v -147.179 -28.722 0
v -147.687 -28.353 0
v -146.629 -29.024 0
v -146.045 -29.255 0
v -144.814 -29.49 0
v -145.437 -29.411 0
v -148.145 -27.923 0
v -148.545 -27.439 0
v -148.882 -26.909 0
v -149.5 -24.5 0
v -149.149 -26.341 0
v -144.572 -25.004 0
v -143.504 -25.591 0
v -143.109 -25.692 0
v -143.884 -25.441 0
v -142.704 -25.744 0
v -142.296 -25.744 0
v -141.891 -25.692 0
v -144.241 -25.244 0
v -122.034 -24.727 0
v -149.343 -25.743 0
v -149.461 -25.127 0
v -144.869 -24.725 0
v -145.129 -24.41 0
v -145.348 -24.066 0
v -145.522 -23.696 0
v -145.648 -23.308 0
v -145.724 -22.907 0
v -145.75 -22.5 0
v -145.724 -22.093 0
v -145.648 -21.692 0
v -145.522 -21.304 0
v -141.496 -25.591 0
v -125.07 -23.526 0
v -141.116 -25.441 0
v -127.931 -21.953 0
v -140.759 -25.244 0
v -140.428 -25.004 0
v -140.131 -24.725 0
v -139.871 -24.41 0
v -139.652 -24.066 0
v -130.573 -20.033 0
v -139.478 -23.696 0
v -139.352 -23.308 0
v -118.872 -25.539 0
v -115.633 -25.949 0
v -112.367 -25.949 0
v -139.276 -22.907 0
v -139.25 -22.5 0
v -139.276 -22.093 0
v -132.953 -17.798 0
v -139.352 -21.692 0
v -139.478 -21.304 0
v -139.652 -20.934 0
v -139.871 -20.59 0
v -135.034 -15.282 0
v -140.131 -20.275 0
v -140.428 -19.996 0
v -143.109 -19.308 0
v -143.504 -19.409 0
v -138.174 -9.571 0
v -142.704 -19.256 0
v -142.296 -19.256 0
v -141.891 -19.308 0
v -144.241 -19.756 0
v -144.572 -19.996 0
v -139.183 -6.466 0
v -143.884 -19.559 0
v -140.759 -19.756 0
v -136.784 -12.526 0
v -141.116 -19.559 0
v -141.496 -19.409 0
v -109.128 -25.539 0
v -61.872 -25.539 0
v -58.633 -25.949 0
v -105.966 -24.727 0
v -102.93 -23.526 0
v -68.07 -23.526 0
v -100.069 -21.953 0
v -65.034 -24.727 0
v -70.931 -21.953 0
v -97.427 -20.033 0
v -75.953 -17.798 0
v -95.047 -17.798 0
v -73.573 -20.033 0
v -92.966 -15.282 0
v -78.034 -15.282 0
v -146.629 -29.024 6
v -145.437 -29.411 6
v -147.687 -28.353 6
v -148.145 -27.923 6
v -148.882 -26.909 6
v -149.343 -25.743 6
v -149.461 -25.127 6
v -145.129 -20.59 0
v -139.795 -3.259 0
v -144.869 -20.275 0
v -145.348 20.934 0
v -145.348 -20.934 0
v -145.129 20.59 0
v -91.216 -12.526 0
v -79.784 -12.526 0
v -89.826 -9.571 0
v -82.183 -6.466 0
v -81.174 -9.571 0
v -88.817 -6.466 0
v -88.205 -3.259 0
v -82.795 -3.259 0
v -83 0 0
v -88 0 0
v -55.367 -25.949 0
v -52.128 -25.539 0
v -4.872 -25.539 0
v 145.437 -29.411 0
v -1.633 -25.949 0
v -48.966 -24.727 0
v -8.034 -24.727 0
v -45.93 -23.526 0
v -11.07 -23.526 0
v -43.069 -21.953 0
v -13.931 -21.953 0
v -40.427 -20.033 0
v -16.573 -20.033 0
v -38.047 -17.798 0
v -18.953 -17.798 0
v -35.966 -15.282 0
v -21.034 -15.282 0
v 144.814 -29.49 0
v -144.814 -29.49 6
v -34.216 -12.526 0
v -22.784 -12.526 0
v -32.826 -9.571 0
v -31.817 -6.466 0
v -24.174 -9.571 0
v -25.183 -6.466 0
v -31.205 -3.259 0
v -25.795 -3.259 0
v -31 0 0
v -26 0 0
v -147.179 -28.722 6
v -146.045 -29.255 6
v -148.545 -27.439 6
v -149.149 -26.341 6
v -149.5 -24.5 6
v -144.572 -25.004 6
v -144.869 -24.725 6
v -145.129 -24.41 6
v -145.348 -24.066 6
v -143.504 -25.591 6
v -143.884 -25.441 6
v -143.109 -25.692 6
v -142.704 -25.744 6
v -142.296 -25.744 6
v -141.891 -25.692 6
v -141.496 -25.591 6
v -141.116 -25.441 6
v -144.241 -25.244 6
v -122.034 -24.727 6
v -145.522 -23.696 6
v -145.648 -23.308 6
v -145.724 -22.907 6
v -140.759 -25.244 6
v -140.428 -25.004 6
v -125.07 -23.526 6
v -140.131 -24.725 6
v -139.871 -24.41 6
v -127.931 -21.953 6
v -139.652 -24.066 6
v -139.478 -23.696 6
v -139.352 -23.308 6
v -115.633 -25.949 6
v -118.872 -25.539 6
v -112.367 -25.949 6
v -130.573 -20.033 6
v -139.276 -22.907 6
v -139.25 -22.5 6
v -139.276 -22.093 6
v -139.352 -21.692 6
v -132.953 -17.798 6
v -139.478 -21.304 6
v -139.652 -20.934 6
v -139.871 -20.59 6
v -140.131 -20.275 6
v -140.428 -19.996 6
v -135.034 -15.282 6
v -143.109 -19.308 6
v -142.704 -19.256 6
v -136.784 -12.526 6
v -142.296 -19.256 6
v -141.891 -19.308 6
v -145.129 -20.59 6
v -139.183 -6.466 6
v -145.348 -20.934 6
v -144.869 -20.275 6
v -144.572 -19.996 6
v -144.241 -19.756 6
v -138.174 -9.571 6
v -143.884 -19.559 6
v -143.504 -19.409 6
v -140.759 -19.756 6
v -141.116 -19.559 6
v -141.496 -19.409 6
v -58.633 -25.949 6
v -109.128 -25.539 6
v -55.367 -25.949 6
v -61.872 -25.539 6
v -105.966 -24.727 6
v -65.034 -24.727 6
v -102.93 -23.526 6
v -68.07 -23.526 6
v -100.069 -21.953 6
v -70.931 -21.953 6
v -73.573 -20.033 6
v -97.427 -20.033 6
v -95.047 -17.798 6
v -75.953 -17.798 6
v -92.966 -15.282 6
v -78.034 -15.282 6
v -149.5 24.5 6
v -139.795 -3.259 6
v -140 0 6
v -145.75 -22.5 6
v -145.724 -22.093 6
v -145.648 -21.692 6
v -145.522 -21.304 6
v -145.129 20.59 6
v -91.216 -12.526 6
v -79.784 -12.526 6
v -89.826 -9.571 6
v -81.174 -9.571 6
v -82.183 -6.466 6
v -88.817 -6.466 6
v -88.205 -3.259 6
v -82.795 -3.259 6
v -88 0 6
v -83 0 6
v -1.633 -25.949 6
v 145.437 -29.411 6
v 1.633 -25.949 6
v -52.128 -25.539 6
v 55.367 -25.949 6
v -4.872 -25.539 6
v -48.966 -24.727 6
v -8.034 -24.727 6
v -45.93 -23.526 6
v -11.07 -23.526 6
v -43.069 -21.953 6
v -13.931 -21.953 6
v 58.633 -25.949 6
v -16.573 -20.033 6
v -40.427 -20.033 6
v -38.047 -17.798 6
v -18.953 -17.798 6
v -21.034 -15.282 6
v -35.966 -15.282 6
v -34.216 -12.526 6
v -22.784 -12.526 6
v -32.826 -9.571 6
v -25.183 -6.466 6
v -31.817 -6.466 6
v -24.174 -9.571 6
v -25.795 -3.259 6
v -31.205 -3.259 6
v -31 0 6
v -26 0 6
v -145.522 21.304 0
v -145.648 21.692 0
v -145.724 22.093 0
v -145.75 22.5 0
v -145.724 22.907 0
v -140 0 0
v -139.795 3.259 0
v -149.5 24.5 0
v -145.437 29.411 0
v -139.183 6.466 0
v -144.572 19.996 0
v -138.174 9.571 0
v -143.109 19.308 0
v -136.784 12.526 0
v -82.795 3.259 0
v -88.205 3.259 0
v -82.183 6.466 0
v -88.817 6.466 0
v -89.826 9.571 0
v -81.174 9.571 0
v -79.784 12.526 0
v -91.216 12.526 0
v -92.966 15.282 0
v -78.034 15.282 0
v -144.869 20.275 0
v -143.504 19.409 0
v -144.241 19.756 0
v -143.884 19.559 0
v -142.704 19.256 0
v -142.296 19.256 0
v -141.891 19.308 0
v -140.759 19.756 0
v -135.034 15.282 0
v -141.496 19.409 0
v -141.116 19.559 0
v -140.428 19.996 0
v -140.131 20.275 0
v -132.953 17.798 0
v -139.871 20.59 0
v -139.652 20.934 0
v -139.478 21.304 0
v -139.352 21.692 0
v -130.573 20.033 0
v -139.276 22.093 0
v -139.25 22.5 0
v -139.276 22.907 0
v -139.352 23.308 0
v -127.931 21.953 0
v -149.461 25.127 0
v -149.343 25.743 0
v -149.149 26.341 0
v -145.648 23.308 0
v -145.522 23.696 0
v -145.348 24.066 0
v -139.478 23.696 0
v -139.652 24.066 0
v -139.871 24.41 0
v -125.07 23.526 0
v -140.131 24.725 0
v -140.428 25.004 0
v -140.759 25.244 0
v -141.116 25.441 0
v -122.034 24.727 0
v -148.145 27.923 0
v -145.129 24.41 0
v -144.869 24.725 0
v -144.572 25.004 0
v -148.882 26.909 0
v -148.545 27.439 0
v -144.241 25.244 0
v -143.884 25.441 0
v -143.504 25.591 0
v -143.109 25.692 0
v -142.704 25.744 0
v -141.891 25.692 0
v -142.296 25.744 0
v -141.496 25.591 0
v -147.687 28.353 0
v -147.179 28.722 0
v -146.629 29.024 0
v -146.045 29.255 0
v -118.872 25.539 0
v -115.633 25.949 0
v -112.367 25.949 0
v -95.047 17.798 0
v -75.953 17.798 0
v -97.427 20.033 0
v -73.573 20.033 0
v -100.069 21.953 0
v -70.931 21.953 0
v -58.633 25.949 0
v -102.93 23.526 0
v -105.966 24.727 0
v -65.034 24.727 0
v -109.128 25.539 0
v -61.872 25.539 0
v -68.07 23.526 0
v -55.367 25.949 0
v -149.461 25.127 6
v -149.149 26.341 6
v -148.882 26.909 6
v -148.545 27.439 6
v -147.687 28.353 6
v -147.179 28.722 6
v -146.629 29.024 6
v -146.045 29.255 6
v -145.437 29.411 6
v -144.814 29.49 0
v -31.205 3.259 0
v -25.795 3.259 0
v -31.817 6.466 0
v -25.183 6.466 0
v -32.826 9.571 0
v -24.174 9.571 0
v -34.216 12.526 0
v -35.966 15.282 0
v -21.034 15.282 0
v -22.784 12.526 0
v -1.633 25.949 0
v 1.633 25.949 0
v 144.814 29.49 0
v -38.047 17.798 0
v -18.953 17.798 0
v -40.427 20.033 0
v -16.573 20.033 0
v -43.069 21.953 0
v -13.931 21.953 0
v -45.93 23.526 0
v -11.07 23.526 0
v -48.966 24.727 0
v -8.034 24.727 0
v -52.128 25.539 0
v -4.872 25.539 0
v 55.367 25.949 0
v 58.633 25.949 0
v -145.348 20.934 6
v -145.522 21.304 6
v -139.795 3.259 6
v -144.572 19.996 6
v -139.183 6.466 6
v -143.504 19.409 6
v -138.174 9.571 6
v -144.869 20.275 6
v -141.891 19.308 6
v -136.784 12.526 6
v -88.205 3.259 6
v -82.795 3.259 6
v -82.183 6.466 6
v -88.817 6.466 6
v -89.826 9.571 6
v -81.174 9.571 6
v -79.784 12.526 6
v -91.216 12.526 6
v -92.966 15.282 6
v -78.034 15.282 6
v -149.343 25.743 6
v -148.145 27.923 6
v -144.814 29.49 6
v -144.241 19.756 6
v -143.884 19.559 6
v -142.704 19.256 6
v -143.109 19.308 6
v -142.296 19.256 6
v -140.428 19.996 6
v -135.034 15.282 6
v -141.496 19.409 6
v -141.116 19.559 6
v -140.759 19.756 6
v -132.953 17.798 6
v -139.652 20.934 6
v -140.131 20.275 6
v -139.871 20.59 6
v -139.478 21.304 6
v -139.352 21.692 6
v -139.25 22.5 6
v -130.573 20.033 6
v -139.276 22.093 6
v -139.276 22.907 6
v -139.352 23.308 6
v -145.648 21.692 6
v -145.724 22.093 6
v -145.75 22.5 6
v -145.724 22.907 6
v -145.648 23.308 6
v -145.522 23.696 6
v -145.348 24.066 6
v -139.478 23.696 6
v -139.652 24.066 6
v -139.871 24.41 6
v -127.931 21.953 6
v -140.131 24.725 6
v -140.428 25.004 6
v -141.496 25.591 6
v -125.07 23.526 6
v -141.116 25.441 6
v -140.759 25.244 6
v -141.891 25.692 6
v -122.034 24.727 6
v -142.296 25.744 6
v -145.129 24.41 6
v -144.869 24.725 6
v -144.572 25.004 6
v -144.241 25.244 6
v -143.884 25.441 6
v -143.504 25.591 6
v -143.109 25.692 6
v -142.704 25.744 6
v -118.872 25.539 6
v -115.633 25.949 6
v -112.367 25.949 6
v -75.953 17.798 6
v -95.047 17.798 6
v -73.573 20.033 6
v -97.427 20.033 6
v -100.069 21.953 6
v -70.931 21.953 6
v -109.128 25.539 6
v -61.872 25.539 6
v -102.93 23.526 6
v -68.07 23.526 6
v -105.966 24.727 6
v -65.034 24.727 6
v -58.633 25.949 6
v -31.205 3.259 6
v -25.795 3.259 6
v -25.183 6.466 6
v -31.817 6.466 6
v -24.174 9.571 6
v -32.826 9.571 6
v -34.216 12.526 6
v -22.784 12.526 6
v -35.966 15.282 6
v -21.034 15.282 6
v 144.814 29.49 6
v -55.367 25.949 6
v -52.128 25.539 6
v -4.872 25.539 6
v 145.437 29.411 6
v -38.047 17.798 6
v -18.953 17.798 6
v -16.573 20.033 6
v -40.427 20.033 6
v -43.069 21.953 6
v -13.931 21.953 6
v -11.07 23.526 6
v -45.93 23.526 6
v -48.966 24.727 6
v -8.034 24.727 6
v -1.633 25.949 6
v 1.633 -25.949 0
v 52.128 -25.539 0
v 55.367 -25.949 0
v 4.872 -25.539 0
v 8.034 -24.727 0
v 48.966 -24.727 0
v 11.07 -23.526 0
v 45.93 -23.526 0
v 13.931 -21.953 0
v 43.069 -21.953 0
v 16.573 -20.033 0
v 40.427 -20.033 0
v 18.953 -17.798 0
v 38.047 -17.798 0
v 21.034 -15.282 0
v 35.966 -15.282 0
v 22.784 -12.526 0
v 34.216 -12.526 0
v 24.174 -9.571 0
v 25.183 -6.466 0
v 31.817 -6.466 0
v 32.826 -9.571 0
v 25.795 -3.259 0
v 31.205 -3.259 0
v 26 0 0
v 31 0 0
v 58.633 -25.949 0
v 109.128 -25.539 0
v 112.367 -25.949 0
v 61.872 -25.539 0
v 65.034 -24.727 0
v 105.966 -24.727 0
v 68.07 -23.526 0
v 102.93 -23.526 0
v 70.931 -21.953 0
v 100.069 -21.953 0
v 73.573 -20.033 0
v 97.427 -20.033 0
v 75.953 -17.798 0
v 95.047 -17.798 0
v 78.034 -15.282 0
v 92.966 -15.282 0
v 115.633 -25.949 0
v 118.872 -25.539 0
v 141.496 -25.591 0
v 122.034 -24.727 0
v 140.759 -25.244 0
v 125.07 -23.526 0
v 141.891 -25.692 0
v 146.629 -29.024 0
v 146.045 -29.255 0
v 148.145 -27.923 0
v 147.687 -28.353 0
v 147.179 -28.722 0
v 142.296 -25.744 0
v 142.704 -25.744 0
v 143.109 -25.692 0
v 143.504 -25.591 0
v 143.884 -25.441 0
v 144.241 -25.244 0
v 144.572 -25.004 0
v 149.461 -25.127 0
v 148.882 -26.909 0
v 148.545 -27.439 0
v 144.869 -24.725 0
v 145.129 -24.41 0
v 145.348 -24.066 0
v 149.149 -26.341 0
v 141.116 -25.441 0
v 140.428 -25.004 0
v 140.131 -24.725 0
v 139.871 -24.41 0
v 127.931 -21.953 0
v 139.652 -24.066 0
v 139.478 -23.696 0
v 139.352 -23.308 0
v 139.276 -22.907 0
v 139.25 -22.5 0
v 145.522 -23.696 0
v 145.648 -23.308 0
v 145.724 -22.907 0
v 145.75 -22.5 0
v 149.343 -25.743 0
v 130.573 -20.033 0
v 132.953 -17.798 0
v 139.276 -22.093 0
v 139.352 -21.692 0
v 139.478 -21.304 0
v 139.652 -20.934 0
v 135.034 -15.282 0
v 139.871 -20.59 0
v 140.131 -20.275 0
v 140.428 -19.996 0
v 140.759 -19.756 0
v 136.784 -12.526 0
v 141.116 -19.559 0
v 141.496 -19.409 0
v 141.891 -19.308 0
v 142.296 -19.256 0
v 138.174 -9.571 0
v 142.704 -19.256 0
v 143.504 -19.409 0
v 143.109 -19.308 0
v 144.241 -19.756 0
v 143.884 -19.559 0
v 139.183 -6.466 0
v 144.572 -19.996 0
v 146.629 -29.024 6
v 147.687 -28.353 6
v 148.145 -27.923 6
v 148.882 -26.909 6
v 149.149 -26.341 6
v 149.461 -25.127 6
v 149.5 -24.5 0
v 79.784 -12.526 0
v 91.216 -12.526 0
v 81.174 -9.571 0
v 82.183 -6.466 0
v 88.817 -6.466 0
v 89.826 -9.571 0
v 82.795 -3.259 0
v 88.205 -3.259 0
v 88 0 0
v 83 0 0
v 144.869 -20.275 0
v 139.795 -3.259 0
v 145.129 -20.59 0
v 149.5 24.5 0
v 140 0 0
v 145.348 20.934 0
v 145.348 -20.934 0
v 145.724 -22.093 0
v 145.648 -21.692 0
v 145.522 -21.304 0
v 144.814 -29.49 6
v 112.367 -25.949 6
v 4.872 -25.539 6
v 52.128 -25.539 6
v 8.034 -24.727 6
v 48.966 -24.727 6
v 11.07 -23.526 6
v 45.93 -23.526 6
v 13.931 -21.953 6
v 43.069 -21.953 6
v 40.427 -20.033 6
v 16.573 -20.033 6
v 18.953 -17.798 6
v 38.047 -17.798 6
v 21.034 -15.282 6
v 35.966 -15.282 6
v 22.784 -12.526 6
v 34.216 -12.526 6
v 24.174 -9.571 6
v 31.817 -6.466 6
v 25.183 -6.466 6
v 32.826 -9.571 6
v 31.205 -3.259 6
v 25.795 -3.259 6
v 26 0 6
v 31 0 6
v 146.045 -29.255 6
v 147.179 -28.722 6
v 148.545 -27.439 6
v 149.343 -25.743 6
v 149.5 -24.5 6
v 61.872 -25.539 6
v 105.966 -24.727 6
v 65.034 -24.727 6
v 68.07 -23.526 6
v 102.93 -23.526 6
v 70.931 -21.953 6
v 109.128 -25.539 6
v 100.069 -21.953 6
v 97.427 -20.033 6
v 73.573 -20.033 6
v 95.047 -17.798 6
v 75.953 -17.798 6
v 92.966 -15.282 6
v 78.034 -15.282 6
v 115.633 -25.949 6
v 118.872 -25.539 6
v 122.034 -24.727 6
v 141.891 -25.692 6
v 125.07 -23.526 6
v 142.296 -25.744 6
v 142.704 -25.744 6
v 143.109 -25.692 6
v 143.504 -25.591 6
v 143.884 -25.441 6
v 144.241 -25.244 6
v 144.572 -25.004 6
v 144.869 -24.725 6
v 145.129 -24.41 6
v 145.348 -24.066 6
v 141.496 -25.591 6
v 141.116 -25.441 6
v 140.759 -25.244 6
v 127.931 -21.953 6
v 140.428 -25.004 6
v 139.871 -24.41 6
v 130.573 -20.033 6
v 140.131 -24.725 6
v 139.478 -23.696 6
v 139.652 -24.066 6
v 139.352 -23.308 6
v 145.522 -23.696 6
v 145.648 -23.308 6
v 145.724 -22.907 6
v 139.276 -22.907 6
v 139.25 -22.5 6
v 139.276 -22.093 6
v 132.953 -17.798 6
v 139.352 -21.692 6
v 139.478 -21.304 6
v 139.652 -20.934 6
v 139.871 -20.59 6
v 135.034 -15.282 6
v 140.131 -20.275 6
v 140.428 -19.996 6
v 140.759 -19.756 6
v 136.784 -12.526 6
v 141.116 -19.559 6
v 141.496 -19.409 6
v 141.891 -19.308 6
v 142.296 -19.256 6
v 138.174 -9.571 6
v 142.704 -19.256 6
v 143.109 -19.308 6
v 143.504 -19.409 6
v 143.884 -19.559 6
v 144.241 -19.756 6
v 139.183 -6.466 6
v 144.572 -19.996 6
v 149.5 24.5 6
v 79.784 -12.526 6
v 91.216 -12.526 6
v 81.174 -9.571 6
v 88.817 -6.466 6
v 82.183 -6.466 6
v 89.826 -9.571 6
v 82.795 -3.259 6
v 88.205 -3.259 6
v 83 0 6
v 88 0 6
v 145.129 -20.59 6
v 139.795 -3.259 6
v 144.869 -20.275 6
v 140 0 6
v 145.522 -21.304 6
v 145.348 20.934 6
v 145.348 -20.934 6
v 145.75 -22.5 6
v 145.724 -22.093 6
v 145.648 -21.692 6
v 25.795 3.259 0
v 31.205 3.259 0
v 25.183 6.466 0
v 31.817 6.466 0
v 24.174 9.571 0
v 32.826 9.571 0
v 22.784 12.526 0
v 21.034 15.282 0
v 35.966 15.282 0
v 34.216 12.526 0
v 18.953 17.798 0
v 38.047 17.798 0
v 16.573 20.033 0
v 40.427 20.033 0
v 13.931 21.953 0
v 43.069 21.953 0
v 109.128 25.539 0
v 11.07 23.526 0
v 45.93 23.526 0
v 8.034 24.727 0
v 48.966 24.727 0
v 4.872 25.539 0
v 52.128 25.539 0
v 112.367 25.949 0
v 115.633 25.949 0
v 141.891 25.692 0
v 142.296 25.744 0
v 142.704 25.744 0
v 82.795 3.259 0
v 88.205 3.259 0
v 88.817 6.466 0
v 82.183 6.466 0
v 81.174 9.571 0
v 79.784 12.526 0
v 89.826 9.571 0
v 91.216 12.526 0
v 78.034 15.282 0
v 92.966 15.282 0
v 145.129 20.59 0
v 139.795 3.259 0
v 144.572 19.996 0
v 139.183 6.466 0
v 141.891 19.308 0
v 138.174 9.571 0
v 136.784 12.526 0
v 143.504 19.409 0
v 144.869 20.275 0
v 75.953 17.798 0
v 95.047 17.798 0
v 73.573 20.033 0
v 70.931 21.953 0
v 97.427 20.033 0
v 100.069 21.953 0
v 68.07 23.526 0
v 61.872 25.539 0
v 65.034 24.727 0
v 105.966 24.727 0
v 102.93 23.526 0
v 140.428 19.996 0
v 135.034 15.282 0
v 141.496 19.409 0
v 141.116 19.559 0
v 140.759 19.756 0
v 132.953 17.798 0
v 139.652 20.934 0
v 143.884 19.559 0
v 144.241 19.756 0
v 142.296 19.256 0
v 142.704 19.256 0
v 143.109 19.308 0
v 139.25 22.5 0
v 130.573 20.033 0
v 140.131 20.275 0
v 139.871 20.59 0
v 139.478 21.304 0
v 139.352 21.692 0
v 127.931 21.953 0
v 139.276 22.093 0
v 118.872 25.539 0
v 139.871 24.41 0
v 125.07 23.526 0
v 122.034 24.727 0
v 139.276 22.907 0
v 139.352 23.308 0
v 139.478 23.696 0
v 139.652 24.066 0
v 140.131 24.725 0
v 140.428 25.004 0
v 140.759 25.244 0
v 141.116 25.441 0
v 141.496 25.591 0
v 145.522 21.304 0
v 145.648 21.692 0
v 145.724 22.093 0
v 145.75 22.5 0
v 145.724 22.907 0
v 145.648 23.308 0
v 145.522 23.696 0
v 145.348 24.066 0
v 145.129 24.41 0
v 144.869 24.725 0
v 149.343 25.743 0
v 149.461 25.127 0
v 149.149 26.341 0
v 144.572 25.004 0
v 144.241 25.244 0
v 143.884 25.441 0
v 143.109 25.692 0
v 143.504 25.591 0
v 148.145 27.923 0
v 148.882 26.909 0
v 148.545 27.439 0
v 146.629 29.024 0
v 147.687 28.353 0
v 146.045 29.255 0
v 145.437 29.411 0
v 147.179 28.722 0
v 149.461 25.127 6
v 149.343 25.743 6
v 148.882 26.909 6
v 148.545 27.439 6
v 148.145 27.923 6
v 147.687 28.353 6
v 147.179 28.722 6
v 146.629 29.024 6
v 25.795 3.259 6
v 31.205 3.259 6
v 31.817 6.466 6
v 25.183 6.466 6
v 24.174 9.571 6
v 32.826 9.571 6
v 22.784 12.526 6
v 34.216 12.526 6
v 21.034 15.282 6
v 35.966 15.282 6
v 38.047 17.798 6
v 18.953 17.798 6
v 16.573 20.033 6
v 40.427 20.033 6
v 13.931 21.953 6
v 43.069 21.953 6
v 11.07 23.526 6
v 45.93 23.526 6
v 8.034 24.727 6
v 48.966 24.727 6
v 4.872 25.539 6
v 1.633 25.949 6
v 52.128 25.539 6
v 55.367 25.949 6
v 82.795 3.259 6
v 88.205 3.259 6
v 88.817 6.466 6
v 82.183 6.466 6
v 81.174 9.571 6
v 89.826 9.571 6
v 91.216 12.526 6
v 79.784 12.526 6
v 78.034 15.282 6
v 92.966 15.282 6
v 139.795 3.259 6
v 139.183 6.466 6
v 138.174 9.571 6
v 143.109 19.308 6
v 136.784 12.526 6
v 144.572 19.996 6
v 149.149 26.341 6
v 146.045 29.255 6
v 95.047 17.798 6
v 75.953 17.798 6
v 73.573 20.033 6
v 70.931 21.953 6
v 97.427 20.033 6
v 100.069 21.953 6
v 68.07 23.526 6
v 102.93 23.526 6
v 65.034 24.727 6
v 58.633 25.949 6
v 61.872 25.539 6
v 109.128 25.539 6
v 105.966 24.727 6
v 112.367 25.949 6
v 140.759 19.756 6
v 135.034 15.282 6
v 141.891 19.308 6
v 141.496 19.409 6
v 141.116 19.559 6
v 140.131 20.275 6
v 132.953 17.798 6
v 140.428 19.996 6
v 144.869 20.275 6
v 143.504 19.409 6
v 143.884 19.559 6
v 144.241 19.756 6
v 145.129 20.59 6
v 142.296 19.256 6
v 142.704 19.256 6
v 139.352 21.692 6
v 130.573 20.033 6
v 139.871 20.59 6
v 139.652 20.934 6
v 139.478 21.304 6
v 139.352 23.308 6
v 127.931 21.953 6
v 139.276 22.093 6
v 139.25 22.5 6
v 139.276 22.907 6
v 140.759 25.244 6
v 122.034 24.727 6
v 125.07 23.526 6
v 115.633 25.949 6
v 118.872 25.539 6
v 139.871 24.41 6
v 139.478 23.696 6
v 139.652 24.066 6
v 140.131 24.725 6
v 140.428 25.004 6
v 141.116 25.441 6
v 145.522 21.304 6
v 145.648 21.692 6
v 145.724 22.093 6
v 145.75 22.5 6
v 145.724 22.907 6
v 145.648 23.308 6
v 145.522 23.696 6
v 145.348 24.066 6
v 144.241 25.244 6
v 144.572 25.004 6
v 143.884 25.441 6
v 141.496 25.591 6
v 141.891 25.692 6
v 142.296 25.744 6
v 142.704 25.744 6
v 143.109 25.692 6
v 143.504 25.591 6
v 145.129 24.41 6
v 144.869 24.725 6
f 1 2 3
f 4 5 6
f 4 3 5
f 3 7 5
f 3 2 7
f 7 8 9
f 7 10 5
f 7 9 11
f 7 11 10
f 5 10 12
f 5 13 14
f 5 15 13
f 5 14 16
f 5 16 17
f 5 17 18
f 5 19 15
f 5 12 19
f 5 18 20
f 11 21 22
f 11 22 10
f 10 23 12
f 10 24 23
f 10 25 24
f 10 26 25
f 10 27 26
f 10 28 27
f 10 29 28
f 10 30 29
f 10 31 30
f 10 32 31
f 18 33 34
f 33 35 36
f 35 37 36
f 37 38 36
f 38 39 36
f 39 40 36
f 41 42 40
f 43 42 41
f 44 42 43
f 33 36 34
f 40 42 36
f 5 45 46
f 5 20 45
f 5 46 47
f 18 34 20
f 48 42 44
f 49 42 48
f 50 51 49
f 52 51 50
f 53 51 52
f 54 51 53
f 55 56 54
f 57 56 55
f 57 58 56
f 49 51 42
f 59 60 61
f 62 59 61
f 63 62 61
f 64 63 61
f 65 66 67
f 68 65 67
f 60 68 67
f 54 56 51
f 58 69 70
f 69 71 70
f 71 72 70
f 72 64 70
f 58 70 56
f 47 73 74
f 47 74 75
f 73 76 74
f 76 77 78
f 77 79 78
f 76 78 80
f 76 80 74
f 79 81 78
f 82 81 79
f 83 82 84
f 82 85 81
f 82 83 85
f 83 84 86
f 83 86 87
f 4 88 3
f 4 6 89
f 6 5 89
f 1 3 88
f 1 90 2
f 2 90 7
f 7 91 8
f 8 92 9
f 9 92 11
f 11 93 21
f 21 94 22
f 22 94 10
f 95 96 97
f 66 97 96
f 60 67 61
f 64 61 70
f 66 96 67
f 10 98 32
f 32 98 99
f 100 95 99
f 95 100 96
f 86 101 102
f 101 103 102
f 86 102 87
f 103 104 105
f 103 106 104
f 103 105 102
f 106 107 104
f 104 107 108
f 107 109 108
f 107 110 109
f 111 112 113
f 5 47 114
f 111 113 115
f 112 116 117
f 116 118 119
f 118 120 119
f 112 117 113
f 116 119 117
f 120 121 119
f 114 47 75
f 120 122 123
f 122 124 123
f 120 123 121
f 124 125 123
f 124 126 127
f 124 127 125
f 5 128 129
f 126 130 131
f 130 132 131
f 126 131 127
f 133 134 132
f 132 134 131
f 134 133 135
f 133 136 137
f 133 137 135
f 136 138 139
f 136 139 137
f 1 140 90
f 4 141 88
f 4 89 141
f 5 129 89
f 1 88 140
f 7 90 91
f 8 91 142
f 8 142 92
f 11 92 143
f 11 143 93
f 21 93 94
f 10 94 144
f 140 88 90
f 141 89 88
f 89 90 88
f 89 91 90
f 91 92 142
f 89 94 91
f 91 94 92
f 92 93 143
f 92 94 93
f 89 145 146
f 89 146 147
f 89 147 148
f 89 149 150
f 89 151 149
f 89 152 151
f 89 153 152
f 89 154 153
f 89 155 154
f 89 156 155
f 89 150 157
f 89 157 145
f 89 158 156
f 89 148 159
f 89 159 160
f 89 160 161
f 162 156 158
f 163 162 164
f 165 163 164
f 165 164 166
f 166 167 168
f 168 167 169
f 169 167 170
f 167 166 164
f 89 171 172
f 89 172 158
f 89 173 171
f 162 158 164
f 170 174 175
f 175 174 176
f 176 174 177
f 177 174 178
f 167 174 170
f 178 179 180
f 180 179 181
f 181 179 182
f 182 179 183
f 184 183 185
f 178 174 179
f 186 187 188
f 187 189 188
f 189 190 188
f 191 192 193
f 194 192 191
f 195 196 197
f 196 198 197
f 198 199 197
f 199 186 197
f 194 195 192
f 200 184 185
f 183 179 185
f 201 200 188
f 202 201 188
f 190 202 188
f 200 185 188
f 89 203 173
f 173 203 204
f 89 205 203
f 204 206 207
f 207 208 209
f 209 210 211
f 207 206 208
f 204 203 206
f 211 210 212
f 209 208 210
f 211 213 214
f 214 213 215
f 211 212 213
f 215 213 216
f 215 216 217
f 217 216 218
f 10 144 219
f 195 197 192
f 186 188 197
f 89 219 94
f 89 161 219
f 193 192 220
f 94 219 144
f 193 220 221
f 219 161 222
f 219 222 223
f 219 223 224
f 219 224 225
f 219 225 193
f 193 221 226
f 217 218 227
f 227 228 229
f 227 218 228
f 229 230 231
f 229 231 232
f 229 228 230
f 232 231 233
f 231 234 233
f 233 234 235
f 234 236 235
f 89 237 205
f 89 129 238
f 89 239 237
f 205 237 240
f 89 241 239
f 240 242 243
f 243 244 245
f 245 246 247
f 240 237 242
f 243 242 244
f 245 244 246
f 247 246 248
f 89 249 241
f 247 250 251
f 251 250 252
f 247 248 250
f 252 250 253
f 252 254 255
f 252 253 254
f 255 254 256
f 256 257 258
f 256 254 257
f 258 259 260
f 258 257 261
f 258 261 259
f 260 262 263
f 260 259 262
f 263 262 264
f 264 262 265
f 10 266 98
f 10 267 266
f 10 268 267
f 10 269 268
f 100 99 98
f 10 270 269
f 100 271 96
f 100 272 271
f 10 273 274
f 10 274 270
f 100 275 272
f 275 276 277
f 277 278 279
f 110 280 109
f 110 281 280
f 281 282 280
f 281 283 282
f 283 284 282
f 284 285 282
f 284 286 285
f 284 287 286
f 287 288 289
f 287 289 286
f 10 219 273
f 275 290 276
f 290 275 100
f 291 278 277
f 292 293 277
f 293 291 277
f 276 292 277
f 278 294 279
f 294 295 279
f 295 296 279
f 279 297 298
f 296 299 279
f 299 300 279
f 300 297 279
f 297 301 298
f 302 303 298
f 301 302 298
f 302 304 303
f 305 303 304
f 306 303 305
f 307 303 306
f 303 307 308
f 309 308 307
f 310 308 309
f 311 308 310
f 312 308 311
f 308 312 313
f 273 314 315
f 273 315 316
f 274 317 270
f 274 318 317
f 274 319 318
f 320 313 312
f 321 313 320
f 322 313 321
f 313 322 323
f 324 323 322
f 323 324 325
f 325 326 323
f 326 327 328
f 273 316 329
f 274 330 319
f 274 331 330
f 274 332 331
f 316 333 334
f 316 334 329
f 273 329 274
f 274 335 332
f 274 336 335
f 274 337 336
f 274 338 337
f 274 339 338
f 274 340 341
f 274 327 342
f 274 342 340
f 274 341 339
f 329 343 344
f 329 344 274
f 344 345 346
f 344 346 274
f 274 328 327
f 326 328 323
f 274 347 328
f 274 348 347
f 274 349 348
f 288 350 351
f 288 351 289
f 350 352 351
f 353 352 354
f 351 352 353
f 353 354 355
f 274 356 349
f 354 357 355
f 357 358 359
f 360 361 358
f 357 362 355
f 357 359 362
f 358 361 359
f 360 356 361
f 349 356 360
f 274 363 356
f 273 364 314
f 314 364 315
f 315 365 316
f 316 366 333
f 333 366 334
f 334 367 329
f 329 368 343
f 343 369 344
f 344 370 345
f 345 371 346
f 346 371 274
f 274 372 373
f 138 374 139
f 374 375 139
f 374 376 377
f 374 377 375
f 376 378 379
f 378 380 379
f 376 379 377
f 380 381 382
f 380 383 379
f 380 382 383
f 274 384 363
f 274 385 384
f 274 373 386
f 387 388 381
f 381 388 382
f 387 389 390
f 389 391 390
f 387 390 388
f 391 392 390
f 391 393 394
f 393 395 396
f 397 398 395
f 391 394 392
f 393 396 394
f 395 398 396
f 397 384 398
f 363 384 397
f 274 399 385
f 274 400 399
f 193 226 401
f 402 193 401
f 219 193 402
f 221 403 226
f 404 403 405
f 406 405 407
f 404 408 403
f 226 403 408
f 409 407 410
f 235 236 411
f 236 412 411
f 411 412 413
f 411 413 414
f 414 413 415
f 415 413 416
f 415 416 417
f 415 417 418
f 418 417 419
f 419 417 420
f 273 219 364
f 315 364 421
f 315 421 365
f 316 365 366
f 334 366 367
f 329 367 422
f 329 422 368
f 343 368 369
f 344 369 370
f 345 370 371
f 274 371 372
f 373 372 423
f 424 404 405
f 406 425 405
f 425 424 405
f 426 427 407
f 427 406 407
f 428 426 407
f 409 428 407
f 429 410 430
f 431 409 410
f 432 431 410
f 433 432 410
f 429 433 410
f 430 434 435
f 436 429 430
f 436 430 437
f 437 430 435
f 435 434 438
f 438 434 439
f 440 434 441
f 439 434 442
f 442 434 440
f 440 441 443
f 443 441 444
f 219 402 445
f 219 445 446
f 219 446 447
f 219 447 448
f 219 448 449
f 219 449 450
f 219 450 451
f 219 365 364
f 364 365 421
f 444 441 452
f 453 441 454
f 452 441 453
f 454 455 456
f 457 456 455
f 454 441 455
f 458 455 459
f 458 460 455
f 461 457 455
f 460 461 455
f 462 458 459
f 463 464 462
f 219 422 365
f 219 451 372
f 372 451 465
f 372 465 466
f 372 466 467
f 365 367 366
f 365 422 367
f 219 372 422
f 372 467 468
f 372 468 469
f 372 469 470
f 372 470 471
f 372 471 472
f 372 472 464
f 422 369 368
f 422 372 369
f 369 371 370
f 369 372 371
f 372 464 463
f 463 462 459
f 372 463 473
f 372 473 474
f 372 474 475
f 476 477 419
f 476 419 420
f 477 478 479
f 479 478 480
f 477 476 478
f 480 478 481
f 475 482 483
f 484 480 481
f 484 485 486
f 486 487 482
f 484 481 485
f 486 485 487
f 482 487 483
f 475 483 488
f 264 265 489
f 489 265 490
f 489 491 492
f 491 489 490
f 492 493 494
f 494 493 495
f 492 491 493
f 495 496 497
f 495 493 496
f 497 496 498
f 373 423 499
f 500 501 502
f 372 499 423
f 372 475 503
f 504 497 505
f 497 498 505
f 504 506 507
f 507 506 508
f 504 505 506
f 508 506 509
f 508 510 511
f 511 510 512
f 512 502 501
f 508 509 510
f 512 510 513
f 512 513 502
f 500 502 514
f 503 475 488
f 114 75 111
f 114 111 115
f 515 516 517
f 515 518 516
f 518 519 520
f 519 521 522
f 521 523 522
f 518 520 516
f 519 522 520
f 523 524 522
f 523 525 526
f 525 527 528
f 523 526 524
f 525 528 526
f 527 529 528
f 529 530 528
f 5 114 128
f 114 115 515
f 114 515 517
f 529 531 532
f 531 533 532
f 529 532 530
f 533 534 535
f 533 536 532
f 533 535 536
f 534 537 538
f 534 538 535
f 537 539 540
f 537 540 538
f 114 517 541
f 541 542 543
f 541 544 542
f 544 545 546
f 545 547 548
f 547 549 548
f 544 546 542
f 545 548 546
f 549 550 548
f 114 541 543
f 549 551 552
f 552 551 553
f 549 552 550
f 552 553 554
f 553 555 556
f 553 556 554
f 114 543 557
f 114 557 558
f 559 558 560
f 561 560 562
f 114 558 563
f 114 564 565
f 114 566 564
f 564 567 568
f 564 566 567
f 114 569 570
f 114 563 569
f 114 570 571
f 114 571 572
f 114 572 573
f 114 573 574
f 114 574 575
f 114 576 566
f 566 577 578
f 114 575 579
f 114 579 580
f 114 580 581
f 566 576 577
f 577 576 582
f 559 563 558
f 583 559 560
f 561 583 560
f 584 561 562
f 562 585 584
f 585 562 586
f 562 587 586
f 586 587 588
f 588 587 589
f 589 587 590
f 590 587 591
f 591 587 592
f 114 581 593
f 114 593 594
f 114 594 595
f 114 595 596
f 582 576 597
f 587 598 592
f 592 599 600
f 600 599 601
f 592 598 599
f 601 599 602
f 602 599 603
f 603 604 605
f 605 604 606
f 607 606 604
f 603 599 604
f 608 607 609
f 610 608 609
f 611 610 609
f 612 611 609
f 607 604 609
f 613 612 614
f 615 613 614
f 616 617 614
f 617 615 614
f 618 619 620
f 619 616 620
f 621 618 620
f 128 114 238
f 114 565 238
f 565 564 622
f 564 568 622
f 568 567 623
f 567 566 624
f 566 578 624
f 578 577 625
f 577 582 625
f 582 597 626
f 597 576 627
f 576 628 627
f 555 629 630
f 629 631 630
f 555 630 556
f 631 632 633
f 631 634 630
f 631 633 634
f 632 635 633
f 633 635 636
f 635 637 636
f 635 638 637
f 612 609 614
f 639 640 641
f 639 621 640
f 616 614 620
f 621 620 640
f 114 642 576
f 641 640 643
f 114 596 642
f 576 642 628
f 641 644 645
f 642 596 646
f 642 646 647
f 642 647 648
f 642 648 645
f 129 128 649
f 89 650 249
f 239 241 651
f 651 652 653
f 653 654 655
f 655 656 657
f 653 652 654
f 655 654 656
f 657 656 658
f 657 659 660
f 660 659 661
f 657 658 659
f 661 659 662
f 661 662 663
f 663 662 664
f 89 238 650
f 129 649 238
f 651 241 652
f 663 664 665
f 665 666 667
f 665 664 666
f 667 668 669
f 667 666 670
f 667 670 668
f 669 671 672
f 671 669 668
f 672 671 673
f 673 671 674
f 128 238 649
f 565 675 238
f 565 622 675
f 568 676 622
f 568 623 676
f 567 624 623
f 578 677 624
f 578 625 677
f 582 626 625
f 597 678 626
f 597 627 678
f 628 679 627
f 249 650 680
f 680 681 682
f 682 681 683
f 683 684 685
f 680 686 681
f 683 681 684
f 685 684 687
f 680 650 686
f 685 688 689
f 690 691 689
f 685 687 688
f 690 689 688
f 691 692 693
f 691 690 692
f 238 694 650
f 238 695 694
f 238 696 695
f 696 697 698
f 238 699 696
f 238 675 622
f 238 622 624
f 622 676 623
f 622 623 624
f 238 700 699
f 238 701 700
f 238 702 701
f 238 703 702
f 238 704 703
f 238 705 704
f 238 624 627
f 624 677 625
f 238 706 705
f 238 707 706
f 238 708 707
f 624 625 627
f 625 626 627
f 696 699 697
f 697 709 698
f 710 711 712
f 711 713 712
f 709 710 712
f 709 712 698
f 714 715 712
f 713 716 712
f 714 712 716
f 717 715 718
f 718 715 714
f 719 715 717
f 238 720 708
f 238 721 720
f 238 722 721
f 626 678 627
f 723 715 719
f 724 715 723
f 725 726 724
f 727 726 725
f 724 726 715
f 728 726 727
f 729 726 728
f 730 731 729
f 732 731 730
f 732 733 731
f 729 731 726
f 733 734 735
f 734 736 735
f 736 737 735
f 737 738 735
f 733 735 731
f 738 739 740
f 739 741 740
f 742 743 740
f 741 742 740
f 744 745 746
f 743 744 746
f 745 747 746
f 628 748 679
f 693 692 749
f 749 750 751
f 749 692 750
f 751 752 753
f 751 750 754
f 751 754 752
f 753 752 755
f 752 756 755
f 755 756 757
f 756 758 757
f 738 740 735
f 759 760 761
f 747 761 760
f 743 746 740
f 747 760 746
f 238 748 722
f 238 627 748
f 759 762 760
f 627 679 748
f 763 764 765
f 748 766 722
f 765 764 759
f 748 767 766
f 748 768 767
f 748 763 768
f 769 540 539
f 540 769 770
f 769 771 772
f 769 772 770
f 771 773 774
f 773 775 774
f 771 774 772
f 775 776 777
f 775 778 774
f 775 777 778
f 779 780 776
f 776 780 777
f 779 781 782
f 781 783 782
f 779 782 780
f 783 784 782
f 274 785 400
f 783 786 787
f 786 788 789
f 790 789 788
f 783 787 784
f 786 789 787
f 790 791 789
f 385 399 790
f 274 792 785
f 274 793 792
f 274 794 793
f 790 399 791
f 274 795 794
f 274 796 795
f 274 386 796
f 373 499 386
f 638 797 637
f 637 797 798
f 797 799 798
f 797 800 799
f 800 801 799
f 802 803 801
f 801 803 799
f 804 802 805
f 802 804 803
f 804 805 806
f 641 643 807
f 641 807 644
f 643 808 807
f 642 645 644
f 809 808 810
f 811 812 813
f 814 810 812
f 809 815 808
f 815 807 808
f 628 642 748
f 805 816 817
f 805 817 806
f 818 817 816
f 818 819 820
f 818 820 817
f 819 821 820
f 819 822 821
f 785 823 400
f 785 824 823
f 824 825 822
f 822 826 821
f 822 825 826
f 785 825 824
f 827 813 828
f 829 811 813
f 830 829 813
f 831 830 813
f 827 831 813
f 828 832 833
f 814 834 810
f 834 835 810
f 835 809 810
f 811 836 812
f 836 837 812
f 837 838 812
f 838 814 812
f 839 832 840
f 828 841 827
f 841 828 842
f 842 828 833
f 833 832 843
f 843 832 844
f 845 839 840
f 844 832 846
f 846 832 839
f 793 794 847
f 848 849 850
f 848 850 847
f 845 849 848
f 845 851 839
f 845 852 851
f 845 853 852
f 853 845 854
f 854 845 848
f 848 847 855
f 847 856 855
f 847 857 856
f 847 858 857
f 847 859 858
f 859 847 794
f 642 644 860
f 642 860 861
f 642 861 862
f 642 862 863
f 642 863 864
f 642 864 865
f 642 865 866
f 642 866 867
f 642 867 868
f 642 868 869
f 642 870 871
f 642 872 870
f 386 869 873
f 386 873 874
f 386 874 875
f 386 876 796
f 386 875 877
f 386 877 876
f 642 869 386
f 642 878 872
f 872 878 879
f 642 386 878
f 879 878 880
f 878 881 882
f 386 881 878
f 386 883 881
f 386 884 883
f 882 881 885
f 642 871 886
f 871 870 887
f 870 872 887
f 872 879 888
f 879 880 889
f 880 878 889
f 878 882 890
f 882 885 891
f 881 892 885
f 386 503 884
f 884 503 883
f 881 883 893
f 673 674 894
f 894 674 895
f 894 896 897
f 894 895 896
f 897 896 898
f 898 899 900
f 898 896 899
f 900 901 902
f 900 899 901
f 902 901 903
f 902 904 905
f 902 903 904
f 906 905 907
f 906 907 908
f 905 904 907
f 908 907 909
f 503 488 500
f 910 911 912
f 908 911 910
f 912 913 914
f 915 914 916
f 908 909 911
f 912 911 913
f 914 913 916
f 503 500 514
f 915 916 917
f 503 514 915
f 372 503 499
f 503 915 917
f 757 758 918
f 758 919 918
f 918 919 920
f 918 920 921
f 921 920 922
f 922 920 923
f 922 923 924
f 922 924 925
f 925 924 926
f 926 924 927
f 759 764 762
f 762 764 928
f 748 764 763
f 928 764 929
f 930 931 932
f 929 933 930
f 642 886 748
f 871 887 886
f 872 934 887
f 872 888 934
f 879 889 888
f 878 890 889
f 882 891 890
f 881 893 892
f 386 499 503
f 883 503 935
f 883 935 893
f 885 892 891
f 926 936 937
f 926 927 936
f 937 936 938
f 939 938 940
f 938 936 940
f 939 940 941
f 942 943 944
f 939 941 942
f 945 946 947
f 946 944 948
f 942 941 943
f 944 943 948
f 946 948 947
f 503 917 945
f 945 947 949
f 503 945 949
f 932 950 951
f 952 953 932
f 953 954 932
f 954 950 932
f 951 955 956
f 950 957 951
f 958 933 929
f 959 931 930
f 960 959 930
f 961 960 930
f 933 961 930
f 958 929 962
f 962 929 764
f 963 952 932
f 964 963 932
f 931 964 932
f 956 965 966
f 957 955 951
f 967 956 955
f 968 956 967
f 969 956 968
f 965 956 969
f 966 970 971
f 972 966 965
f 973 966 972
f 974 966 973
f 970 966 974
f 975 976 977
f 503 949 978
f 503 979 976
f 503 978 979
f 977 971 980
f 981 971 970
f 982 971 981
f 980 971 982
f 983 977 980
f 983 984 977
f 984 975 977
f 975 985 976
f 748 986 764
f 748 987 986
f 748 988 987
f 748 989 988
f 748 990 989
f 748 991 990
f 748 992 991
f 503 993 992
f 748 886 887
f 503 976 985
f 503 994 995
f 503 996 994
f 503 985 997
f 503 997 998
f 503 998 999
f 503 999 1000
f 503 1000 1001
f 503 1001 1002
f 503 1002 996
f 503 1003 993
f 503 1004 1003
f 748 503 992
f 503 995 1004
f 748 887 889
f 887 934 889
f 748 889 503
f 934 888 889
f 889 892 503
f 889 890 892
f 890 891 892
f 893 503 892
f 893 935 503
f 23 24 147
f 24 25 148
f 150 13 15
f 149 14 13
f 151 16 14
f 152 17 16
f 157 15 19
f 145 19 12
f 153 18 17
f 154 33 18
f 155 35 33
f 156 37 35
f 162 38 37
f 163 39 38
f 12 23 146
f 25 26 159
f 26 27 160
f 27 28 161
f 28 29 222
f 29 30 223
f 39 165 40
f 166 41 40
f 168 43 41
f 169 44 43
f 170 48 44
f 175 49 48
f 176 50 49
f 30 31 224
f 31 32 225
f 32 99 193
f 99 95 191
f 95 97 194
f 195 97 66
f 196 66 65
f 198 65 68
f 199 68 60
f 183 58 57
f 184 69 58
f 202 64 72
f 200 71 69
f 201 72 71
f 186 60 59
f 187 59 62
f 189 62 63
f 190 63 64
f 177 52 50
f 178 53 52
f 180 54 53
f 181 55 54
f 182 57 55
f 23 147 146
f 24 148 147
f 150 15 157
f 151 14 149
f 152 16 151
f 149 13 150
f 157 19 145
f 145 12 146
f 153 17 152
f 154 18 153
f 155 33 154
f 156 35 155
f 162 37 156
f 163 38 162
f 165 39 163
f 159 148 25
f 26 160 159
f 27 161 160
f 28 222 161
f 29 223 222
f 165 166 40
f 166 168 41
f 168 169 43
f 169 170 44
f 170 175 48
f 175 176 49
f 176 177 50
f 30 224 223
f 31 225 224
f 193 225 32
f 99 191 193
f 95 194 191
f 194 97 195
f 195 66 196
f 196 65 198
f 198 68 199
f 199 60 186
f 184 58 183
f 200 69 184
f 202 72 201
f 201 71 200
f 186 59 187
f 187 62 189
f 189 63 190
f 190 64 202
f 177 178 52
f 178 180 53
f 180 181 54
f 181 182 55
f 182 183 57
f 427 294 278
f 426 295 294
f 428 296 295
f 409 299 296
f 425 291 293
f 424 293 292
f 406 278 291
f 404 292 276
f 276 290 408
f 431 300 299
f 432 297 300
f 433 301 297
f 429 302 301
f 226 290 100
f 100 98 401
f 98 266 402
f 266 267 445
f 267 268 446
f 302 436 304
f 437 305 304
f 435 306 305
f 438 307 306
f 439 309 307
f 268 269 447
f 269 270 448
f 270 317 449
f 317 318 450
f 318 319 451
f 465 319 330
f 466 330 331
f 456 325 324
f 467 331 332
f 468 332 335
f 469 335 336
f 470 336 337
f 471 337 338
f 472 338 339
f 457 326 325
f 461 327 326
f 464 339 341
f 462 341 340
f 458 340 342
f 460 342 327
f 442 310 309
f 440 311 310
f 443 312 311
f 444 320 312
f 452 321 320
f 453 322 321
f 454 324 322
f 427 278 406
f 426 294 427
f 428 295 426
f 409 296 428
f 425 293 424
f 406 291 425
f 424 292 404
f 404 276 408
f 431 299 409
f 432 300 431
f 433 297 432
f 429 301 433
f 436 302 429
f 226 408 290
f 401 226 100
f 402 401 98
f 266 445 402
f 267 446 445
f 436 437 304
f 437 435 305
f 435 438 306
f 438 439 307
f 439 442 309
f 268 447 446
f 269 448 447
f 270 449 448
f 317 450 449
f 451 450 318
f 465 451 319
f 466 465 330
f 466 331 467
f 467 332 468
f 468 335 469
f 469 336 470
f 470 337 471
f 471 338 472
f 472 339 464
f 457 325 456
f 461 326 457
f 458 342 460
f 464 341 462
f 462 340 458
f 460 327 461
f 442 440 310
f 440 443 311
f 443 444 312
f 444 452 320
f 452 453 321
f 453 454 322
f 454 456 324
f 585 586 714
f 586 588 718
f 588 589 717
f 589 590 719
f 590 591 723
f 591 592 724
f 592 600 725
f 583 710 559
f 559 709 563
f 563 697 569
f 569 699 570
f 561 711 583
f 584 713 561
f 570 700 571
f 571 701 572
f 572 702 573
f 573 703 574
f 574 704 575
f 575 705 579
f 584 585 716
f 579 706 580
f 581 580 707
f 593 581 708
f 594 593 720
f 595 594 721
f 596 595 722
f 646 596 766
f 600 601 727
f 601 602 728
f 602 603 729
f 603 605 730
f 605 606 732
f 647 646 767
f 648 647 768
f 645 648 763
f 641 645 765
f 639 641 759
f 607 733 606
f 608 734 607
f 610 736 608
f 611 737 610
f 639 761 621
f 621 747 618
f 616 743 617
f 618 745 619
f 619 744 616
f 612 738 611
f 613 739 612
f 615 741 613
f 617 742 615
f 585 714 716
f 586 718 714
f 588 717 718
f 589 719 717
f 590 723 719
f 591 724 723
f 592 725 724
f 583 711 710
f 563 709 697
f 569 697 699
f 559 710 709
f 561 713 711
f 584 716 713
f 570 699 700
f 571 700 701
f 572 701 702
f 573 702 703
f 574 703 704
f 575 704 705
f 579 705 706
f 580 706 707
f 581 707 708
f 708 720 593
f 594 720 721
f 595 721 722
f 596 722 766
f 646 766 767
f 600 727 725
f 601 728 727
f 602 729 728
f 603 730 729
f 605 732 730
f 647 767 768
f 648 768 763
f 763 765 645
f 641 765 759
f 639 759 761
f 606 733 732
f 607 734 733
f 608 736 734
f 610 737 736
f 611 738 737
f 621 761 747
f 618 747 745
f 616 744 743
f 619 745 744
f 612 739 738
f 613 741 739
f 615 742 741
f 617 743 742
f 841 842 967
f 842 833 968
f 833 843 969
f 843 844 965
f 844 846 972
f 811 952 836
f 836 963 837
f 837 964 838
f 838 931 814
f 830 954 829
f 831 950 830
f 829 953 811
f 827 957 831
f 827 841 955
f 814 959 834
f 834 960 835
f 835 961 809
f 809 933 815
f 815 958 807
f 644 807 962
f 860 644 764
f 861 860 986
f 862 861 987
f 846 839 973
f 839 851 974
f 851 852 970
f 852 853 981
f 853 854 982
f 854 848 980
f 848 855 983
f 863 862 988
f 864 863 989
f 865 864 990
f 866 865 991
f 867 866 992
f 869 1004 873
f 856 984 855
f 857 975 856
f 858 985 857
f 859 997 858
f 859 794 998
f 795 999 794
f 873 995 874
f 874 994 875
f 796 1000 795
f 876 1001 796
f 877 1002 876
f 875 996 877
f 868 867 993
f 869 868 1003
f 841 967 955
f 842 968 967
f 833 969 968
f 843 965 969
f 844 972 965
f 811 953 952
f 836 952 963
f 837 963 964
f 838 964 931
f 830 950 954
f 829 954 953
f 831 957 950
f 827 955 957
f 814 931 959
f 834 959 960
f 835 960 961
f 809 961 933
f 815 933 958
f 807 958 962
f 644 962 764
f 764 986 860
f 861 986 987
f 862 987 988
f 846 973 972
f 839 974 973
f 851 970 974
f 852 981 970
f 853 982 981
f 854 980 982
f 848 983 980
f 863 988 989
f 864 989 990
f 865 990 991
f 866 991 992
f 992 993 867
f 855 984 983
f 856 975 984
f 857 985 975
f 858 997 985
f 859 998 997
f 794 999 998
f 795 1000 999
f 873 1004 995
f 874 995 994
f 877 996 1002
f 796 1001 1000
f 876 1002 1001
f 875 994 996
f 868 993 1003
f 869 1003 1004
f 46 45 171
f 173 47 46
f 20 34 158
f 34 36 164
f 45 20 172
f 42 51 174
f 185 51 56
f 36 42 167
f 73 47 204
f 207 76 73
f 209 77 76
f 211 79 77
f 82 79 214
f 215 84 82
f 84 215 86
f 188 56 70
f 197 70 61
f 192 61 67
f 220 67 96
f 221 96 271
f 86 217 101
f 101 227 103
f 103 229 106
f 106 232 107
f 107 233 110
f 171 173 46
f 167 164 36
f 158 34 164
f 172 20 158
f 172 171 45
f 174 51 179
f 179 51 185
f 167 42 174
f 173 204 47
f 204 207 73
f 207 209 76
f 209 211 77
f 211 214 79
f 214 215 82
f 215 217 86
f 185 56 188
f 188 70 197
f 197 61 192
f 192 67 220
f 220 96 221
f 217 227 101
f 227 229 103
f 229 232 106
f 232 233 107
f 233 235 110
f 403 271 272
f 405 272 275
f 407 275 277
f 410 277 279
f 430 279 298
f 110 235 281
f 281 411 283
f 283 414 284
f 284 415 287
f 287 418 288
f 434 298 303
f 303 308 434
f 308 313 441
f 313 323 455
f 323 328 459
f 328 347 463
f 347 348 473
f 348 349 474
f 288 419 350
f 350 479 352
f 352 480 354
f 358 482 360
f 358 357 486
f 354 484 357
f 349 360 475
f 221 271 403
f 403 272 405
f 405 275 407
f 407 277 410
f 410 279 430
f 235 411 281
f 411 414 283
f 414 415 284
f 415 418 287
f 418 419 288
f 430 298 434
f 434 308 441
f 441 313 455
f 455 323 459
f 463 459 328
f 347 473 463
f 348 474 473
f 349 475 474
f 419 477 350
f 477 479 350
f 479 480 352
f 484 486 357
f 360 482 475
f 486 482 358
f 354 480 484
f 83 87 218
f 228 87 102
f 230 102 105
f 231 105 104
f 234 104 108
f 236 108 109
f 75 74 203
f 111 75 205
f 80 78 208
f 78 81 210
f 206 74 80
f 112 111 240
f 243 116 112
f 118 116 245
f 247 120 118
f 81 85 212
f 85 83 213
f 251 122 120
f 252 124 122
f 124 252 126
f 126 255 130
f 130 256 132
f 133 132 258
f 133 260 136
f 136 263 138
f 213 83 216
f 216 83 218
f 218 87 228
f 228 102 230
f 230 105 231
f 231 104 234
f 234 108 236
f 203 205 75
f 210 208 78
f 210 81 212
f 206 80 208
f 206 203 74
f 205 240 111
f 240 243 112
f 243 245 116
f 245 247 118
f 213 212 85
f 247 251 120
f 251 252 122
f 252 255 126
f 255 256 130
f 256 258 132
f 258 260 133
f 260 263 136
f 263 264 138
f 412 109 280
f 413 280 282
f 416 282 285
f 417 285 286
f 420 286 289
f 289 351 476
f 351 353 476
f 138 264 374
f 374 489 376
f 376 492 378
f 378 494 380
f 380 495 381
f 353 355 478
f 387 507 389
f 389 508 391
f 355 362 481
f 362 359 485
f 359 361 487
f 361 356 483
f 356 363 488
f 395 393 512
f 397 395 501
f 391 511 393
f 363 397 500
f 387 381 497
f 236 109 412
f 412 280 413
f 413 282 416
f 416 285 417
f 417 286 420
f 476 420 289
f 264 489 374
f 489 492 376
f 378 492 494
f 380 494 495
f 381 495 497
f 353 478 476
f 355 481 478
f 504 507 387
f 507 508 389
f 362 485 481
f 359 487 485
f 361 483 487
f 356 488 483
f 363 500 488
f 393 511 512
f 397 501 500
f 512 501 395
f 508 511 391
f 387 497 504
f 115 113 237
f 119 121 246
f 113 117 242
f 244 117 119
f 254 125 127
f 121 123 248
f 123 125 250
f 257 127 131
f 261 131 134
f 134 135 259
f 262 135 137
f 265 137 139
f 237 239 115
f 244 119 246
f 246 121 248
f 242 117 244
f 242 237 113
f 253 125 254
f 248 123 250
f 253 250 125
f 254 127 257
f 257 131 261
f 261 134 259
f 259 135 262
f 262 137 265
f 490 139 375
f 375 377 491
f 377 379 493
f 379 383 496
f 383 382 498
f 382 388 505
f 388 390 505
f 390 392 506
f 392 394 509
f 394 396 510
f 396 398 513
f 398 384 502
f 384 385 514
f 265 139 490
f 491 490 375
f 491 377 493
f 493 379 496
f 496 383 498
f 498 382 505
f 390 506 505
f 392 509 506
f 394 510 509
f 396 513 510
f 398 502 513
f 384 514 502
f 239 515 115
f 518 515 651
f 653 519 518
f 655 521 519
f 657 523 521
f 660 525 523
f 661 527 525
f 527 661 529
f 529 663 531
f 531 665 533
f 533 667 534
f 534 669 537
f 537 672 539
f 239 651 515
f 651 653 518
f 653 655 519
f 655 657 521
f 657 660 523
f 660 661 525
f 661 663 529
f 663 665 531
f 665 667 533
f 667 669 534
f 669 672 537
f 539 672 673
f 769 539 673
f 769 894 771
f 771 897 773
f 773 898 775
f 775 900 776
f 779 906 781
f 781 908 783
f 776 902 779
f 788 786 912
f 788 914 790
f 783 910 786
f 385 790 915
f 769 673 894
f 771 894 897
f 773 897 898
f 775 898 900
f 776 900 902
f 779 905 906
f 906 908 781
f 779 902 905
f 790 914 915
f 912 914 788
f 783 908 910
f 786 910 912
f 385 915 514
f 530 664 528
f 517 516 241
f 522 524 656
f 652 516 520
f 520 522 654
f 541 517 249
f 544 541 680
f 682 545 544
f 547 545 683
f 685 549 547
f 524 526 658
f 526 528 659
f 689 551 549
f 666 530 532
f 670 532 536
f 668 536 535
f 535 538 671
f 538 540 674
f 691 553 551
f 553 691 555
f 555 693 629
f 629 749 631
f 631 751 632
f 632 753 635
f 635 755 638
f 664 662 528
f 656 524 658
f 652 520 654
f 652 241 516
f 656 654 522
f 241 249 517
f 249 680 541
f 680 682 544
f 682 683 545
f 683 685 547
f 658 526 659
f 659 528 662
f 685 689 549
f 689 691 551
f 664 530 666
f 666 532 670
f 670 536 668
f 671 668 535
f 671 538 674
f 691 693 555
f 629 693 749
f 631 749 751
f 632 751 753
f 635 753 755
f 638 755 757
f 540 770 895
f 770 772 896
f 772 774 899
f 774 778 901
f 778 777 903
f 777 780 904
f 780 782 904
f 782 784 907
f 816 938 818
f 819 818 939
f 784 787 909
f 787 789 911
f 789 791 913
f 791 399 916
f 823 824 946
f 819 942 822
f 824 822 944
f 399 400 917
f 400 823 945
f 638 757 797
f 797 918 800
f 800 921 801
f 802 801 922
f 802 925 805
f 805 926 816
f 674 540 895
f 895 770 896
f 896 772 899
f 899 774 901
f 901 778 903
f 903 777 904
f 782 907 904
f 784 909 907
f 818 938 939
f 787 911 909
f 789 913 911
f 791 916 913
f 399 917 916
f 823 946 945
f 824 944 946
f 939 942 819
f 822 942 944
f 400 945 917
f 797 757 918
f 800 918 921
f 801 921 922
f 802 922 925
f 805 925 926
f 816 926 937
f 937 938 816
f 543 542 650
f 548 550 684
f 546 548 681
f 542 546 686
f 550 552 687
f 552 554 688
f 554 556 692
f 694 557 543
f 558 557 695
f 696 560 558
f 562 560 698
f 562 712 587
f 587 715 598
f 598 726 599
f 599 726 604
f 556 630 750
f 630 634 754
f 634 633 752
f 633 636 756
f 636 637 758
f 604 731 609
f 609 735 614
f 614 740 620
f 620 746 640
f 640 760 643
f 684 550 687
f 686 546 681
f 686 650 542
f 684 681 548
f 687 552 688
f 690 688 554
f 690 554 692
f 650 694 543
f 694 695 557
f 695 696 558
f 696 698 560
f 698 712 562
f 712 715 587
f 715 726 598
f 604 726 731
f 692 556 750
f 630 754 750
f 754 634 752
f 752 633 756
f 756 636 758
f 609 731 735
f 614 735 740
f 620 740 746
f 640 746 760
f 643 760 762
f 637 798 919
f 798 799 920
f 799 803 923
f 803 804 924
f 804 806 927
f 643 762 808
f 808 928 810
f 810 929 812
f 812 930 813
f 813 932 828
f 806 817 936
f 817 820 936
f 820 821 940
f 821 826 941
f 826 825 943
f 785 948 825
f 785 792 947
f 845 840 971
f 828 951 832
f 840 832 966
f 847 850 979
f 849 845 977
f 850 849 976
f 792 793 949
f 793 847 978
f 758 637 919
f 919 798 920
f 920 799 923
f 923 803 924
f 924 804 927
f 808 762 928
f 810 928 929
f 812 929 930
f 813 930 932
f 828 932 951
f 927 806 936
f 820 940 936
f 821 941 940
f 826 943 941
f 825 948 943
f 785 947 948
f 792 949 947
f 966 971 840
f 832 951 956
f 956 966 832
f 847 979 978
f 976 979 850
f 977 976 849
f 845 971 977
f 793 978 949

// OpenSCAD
$fn = 50;

difference() {
	union() {
		hull() {
			translate(v = [-144.5, 24.5, 0]) {
				cylinder(h = 6, r = 5);
			}
			translate(v = [144.5, 24.5, 0]) {
				cylinder(h = 6, r = 5);
			}
			translate(v = [-144.5, -24.5, 0]) {
				cylinder(h = 6, r = 5);
			}
			translate(v = [144.5, -24.5, 0]) {
				cylinder(h = 6, r = 5);
			}
		}
	}
	union() {
		translate(v = [-142.5, -22.5, -100.0]) {
			cylinder(h = 200, r = 3.25);
		}
		translate(v = [-142.5, 22.5, -100.0]) {
			cylinder(h = 200, r = 3.25);
		}
		translate(v = [142.5, -22.5, -100.0]) {
			cylinder(h = 200, r = 3.25);
		}
		translate(v = [142.5, 22.5, -100.0]) {
			cylinder(h = 200, r = 3.25);
		}
		translate(v = [-142.5, -22.5, -100.0]) {
			cylinder(h = 200, r = 1.8);
		}
		translate(v = [-142.5, 22.5, -100.0]) {
			cylinder(h = 200, r = 1.8);
		}
		translate(v = [142.5, -22.5, -100.0]) {
			cylinder(h = 200, r = 1.8);
		}
		translate(v = [142.5, 22.5, -100.0]) {
			cylinder(h = 200, r = 1.8);
		}
		translate(v = [-114.0, 0, 0.0]) {
			cylinder(h = 6, r = 26.0);
		}
		translate(v = [-57.0, 0, 0.0]) {
			cylinder(h = 6, r = 26.0);
		}
		cylinder(h = 6, r = 26.0);
		translate(v = [57.0, 0, 0.0]) {
			cylinder(h = 6, r = 26.0);
		}
		translate(v = [114.0, 0, 0.0]) {
			cylinder(h = 6, r = 26.0);
		}
	}
}
